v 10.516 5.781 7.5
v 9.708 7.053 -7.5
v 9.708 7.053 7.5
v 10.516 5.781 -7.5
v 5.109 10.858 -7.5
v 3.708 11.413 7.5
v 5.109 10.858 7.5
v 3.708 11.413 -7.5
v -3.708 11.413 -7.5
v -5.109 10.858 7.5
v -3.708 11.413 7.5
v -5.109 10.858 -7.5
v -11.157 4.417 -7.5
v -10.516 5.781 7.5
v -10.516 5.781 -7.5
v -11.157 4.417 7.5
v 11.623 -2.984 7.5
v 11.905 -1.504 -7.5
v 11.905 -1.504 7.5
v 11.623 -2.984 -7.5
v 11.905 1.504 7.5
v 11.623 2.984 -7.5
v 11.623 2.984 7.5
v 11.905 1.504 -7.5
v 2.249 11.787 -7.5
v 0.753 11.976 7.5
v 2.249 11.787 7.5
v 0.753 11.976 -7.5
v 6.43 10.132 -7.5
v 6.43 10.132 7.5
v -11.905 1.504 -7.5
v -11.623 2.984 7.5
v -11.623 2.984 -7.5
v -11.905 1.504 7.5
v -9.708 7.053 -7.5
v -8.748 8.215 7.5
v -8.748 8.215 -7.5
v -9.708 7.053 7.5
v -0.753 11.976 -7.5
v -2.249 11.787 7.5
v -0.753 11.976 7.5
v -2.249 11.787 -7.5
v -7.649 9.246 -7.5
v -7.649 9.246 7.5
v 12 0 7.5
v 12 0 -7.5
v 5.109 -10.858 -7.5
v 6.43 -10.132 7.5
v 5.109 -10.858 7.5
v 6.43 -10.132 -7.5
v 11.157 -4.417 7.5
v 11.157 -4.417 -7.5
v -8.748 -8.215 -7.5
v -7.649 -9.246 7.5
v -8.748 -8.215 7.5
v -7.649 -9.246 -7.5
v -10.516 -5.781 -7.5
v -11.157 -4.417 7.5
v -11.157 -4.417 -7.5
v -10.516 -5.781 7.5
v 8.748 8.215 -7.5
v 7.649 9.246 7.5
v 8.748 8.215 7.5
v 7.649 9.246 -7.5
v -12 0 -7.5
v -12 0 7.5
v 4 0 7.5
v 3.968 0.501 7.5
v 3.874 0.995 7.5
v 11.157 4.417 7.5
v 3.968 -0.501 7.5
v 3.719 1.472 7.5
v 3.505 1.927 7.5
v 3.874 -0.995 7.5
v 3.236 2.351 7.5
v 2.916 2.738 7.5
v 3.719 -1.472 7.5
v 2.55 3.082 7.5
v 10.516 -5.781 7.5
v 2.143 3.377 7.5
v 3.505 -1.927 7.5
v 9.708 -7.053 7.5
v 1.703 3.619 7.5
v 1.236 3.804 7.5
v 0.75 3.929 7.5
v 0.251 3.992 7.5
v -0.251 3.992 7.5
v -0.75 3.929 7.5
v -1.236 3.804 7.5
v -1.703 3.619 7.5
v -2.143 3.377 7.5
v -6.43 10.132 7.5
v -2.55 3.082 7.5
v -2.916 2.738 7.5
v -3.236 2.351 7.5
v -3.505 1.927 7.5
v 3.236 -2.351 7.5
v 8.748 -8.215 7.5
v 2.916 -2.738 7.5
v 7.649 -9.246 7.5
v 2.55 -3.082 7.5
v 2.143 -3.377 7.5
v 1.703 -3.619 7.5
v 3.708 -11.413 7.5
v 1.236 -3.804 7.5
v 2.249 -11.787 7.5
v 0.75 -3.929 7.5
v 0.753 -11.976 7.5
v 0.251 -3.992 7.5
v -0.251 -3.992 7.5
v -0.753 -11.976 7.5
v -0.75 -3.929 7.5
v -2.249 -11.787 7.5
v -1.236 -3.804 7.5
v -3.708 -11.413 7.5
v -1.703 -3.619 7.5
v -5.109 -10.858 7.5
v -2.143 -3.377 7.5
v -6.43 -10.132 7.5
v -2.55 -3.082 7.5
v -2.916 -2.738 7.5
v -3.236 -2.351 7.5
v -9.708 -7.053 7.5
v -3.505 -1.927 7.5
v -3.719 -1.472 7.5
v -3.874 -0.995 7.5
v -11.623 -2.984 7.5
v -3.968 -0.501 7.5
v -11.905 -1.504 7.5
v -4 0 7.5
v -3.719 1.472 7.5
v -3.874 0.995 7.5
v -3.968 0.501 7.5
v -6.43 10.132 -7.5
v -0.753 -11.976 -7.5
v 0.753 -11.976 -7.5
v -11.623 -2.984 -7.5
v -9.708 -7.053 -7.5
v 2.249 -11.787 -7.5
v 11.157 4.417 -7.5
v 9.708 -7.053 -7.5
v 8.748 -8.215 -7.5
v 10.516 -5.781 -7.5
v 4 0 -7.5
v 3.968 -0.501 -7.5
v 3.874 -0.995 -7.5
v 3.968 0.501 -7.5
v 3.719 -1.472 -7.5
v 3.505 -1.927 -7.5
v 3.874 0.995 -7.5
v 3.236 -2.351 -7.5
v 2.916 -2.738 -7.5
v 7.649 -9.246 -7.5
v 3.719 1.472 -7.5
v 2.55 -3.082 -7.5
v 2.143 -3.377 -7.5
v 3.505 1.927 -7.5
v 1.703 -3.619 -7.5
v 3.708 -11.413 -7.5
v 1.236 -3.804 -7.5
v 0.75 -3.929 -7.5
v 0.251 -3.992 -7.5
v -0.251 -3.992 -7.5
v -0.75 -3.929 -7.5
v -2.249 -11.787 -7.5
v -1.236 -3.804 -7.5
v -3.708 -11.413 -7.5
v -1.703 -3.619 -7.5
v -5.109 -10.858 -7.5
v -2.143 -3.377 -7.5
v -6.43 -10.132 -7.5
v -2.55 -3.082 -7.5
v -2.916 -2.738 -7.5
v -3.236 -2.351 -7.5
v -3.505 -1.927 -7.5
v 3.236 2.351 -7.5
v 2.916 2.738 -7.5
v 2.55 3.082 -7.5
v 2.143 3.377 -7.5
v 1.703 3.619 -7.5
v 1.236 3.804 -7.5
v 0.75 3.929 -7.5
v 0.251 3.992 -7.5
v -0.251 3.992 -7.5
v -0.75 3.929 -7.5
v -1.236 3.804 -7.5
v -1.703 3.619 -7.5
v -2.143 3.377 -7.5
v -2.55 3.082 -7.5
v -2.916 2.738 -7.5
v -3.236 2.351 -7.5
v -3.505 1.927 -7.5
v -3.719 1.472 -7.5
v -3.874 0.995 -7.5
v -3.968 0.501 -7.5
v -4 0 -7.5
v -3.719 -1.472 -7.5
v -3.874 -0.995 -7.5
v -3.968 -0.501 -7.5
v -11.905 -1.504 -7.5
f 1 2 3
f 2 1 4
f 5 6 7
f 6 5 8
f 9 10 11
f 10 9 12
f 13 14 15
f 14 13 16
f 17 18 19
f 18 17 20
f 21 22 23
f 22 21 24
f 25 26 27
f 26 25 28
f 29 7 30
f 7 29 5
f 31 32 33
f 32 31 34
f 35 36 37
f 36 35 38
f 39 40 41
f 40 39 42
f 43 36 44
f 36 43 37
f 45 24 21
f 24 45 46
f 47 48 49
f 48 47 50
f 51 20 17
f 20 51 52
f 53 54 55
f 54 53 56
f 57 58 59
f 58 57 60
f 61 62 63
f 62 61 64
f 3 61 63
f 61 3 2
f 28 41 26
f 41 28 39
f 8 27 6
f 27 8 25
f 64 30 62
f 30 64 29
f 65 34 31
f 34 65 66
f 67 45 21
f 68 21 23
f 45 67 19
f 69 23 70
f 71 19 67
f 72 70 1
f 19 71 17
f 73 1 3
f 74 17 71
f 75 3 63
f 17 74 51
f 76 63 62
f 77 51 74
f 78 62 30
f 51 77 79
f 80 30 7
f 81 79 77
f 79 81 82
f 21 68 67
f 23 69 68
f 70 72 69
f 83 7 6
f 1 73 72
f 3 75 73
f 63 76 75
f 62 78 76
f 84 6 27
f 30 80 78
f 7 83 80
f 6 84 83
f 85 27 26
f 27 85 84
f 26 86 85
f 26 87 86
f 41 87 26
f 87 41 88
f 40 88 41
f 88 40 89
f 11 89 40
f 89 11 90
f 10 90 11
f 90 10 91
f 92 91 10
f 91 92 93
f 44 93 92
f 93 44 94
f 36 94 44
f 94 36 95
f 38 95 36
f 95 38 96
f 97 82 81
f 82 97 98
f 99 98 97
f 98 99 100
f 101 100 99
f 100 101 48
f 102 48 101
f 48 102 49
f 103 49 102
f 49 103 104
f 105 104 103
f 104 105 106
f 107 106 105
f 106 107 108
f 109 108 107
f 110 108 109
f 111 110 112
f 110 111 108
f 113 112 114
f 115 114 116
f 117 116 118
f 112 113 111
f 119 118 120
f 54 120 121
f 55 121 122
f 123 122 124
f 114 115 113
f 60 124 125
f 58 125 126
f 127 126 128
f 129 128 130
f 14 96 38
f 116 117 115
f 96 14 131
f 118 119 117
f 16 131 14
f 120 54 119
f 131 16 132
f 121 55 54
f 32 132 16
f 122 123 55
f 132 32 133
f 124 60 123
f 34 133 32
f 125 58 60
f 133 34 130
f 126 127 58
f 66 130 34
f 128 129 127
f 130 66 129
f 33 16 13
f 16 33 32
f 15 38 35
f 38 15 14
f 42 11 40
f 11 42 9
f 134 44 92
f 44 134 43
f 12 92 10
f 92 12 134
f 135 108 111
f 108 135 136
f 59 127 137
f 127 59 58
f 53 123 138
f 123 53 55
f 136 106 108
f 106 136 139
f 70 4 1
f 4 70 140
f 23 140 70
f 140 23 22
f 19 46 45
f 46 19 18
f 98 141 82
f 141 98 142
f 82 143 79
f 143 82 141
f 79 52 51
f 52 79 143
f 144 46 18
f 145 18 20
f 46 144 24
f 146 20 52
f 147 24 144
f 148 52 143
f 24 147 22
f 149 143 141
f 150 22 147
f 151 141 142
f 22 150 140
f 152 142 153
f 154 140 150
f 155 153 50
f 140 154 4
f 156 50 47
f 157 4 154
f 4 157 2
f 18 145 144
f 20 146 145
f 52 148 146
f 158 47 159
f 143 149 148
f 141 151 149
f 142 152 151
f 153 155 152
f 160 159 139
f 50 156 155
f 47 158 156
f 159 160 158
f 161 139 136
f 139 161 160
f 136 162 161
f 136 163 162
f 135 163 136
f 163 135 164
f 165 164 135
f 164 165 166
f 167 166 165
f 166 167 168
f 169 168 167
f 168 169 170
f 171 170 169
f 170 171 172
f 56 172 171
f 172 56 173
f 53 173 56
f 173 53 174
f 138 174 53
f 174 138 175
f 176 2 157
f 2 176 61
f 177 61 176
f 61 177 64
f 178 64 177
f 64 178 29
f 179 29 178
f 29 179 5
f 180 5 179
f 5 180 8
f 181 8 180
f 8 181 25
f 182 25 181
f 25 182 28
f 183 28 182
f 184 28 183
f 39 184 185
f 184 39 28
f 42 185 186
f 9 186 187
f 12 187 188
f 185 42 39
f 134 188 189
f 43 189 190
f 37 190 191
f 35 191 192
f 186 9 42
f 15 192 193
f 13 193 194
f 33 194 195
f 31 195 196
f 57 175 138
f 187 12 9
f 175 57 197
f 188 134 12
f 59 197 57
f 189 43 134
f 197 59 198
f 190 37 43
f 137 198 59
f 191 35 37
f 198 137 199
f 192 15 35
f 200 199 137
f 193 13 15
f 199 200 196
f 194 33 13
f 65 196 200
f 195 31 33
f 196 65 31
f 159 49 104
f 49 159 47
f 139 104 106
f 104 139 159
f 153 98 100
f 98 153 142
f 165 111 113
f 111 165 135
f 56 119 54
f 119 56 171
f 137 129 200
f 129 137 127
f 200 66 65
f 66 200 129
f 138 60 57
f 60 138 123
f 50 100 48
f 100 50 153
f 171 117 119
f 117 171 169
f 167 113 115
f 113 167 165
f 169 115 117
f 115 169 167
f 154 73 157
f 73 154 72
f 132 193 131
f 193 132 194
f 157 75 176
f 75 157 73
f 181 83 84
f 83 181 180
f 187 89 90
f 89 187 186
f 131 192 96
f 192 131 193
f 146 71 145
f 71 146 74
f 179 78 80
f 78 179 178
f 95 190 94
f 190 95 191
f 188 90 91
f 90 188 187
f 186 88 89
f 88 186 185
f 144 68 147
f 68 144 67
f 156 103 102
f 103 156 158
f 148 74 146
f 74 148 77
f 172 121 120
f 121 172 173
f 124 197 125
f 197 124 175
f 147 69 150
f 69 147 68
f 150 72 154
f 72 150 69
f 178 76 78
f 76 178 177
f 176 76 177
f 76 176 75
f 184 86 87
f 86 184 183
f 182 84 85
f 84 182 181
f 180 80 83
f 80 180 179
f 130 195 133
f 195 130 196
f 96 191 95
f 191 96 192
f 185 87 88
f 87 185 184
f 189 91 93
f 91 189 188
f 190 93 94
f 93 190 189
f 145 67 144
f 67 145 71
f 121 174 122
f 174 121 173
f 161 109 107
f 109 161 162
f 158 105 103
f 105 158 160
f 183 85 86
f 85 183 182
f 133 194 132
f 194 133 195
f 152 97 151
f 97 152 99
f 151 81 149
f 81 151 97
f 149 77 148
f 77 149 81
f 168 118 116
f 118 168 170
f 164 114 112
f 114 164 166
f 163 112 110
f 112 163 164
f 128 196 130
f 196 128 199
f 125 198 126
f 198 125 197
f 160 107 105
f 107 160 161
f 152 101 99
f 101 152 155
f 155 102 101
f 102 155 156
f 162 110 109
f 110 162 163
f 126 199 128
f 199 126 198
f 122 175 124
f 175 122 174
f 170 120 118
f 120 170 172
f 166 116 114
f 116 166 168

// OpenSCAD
$fn = 50;


difference() {
	union() {
		translate(v = [0, 0, -7.5000000000]) {
			cylinder(h = 15, r = 12.0000000000);
		}
	}
	union() {
		translate(v = [0, 0, -100.0000000000]) {
			cylinder(h = 200, r = 4);
		}
	}
}
